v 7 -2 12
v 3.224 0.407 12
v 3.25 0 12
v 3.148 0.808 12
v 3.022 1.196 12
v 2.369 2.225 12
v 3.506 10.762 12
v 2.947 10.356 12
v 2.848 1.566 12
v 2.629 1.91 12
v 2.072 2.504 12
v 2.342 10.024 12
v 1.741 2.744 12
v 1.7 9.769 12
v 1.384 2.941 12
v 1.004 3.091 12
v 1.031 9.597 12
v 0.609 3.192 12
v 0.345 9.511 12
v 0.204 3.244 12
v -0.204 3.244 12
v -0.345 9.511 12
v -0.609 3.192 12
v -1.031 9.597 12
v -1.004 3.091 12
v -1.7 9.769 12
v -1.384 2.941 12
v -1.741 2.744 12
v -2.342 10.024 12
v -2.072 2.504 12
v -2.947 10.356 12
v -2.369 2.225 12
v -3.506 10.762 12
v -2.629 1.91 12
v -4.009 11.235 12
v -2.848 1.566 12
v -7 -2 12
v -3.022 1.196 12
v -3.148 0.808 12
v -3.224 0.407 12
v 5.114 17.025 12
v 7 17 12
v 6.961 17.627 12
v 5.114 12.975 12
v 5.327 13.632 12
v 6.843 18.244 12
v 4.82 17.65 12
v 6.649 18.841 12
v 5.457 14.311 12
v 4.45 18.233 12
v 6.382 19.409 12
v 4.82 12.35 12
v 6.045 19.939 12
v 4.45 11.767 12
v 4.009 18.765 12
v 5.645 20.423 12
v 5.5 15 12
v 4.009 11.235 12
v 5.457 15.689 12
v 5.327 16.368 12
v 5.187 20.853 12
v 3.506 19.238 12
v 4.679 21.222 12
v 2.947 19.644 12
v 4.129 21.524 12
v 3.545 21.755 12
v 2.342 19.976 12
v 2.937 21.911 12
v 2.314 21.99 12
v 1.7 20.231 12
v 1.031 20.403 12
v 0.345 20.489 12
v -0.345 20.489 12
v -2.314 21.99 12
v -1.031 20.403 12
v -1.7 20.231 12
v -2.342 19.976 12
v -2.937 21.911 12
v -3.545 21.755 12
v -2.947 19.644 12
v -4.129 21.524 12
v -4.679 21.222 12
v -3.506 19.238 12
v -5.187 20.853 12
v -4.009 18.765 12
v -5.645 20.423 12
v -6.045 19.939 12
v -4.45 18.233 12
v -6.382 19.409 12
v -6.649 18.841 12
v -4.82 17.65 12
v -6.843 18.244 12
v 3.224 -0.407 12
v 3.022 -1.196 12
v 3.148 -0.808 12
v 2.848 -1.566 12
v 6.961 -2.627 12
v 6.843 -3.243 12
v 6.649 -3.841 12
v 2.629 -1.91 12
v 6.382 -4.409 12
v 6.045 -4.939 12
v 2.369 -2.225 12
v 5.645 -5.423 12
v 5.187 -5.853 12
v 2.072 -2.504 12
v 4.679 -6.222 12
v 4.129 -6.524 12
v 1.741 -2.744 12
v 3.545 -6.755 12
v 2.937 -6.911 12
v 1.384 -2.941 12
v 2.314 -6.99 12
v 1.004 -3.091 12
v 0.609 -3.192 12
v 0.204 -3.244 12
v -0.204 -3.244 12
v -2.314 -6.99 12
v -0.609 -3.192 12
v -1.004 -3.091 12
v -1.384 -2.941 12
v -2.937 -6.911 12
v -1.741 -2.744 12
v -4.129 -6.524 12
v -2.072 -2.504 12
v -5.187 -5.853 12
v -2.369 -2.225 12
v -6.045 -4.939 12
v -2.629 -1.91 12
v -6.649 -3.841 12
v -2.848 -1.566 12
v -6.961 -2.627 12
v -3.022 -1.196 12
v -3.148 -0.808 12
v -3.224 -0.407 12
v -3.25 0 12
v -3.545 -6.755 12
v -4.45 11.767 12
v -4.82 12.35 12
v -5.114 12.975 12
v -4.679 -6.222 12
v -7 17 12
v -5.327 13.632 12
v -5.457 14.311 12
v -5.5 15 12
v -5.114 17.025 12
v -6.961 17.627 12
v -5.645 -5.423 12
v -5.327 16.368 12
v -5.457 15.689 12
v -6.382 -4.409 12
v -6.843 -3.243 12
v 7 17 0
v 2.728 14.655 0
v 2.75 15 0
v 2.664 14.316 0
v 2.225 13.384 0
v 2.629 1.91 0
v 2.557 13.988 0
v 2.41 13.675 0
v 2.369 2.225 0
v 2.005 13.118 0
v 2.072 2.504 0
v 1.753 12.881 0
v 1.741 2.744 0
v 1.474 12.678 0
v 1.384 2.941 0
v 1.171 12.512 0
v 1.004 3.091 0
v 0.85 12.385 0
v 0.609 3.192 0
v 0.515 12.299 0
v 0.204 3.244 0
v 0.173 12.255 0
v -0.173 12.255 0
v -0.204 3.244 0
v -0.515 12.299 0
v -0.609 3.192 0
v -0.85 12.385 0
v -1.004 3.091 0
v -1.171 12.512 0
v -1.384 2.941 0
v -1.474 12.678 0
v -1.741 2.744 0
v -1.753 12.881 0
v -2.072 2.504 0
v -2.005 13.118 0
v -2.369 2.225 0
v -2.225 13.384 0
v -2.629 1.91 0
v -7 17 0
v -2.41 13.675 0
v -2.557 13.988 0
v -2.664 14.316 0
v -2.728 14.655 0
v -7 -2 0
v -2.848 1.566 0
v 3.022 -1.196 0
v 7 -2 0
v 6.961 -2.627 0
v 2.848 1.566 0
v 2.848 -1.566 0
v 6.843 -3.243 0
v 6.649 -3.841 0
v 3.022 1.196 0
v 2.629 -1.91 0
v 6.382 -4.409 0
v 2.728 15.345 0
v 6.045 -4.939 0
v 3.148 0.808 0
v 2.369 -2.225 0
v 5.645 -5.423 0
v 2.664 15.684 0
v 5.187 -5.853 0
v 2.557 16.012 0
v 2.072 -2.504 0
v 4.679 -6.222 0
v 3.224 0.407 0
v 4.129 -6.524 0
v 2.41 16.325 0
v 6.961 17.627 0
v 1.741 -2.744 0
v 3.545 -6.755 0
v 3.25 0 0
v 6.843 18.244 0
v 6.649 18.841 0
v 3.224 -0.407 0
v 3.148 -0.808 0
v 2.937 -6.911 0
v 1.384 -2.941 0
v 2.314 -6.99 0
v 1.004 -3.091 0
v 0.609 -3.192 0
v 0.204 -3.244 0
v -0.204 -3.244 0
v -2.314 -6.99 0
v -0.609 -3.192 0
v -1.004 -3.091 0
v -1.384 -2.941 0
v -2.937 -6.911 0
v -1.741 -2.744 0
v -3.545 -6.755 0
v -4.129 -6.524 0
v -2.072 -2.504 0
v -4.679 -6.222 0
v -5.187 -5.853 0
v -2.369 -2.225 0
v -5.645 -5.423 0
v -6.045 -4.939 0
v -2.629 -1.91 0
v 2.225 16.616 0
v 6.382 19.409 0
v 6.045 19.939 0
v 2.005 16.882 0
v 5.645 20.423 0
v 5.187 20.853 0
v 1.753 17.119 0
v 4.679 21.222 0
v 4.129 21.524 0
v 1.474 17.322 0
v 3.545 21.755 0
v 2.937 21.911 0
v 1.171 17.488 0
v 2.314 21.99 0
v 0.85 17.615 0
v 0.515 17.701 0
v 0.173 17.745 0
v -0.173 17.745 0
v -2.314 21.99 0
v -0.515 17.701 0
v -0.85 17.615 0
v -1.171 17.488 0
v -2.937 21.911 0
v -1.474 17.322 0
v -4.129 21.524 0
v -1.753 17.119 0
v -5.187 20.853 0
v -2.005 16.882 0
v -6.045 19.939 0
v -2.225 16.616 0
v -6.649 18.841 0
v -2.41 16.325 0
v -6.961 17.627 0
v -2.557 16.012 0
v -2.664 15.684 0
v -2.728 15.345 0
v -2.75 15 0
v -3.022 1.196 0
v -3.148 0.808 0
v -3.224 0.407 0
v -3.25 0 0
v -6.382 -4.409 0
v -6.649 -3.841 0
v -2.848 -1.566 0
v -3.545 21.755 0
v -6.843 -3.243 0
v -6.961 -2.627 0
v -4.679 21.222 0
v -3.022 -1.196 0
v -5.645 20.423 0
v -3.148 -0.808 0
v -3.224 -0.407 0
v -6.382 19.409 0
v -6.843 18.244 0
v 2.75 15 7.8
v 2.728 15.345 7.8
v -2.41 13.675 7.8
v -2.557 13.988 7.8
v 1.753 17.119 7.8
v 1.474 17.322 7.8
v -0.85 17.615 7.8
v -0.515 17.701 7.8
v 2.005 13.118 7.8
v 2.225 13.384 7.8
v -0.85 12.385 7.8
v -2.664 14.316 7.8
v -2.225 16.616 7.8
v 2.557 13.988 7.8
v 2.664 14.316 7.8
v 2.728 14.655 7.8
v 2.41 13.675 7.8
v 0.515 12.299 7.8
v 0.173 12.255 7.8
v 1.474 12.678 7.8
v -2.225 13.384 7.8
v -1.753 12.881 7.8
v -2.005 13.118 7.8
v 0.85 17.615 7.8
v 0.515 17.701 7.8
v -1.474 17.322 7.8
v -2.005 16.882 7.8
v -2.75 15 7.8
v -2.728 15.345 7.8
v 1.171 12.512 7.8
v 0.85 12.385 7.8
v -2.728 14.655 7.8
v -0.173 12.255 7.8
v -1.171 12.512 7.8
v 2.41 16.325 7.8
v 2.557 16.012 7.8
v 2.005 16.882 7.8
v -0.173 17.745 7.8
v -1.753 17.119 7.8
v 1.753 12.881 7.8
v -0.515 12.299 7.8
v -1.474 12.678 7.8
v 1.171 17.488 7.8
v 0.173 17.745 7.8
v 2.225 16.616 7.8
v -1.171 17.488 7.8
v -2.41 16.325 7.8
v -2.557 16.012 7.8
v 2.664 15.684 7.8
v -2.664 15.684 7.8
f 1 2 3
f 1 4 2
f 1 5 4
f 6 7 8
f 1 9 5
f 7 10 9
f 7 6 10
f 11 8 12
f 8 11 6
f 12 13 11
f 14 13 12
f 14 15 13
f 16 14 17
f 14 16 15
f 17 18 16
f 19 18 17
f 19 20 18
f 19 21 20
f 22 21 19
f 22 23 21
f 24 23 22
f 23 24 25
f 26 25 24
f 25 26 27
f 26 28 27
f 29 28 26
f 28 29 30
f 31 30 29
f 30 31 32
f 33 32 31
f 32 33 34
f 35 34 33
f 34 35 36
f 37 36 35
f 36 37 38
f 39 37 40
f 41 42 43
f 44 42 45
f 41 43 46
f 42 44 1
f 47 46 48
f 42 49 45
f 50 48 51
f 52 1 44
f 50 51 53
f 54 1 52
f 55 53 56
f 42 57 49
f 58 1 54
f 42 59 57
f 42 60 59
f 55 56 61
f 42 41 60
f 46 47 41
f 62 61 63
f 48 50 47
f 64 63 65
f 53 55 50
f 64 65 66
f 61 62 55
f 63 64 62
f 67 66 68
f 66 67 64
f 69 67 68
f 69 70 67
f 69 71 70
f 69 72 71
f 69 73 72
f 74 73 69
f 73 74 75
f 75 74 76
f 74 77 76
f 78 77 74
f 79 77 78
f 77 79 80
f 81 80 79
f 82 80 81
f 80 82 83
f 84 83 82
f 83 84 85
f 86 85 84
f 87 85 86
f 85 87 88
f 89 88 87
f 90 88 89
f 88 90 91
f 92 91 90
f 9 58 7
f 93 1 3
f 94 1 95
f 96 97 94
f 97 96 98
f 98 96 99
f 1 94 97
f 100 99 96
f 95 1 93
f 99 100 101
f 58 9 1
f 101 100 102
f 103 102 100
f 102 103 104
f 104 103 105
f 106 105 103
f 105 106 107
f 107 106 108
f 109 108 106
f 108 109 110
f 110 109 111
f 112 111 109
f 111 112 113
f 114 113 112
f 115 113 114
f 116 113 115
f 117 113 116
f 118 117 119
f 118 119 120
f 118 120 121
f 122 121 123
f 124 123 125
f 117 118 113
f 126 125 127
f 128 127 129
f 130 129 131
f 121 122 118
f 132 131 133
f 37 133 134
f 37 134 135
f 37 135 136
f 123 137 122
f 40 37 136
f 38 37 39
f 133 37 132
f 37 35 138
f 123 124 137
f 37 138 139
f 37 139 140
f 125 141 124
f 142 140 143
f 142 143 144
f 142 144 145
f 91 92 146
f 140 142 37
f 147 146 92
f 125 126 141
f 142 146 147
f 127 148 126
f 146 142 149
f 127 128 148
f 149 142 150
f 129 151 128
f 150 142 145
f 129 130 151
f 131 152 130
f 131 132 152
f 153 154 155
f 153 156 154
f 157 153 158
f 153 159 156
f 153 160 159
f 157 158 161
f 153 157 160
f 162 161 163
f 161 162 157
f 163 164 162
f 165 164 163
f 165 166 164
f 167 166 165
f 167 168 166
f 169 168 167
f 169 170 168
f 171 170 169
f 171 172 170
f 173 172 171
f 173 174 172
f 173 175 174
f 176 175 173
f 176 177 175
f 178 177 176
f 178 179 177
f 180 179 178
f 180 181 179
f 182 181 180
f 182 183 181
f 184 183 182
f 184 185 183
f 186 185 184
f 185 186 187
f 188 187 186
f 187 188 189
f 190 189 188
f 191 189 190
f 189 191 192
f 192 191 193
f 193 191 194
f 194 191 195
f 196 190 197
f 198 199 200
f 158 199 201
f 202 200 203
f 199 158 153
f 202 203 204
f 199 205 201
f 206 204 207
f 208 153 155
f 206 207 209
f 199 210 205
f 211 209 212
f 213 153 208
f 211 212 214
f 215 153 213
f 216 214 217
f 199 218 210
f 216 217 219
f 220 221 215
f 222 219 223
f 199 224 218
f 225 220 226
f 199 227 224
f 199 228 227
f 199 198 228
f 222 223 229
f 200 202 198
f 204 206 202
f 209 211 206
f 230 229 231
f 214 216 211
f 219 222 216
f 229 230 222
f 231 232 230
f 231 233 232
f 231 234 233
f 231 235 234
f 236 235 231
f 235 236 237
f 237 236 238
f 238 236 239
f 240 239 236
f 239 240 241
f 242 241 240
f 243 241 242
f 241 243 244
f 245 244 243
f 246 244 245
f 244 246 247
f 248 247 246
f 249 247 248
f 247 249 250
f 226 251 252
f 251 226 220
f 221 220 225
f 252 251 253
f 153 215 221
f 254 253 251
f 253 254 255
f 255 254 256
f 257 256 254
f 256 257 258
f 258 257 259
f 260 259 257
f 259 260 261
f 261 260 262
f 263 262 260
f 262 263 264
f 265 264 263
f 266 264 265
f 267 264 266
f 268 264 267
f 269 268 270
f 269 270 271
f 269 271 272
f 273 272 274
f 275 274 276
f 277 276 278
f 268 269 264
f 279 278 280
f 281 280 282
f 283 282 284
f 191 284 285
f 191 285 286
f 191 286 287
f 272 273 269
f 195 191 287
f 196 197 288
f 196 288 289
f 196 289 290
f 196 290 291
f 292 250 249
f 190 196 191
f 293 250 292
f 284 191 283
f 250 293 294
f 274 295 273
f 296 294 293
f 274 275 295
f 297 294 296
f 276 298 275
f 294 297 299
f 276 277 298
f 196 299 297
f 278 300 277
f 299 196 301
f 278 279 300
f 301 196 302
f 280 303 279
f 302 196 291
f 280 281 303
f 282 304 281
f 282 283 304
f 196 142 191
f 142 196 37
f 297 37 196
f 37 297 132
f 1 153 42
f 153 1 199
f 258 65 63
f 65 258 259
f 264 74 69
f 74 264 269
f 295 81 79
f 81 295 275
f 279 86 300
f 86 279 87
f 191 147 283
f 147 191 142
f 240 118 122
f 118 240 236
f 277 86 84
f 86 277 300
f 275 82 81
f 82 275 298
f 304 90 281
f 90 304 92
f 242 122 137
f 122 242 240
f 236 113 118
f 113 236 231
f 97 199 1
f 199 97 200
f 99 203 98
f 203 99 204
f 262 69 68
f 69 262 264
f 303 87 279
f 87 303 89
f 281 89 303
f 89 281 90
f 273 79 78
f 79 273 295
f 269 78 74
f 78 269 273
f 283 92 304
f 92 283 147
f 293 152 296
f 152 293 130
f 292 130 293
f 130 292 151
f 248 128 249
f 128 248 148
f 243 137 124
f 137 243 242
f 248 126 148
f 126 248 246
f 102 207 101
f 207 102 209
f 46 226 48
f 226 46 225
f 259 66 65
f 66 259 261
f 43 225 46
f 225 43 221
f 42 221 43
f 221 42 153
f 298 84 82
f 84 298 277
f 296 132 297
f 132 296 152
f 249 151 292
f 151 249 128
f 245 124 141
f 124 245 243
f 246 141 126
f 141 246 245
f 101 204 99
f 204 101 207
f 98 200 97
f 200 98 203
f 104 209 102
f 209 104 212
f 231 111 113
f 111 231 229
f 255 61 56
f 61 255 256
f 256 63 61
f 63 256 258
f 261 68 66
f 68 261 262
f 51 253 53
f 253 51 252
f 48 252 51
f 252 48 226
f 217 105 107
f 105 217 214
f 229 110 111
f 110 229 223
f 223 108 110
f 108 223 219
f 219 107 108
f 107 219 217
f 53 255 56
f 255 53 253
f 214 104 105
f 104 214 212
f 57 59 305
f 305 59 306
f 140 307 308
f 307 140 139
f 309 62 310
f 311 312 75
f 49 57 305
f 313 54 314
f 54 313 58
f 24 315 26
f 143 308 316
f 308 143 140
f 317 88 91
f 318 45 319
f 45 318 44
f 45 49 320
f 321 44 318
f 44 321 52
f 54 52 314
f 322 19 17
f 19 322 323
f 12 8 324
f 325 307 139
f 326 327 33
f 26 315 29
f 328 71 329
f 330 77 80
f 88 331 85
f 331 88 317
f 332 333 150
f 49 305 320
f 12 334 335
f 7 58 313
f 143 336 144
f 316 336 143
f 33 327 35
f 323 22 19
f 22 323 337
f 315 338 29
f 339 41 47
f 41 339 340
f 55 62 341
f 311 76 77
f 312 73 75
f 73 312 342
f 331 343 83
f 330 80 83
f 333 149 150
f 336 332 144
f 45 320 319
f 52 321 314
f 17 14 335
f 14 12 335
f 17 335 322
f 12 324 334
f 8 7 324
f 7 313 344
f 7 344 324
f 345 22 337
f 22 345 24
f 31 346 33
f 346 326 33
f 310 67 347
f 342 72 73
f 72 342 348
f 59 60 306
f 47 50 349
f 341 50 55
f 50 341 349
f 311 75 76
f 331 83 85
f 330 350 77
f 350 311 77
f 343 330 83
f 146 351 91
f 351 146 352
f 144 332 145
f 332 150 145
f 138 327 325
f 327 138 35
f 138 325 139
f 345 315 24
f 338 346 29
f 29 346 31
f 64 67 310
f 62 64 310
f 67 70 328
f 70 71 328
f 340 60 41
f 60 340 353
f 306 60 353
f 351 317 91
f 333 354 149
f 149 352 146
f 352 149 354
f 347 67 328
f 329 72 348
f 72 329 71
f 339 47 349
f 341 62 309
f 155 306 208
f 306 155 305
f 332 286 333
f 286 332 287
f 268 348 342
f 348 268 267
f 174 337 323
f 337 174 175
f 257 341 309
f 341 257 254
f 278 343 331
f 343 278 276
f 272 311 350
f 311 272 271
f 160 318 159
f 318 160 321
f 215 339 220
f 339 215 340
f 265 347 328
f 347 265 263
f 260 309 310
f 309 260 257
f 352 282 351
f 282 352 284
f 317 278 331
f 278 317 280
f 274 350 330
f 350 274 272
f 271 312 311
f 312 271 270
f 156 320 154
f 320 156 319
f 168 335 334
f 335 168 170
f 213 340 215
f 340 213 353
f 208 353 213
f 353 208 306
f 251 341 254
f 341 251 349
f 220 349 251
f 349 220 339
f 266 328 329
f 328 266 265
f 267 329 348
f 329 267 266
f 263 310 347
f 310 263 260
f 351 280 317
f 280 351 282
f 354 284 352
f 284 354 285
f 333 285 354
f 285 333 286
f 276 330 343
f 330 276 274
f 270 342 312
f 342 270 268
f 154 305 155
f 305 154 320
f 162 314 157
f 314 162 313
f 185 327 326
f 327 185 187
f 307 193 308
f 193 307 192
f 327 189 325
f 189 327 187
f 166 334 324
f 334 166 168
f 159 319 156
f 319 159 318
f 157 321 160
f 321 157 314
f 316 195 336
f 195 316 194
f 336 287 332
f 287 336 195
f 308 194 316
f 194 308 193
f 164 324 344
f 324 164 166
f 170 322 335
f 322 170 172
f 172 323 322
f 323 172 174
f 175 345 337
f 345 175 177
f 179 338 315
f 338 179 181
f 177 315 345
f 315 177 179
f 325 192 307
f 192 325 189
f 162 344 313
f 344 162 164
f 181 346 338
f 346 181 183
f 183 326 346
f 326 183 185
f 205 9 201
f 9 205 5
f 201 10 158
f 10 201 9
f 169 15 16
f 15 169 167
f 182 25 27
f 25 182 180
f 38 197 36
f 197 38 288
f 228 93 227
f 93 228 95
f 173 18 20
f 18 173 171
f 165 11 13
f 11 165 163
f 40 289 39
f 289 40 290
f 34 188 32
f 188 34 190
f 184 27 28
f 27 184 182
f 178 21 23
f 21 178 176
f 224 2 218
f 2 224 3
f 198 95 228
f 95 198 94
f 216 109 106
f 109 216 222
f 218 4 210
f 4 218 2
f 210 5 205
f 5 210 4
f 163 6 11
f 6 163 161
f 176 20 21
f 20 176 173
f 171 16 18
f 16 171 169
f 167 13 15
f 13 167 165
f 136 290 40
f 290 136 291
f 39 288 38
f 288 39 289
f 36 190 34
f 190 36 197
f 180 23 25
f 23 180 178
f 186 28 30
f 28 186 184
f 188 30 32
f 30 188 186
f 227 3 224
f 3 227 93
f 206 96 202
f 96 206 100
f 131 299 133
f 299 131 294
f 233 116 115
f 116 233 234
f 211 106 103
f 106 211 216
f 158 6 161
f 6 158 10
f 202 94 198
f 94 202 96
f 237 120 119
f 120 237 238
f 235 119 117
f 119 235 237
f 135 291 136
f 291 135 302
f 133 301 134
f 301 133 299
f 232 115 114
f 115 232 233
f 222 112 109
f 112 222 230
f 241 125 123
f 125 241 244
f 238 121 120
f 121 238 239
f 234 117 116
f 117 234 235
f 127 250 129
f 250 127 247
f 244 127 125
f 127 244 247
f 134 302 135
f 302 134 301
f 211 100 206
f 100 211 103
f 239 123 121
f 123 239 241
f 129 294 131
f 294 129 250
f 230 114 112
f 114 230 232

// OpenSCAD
$fn = 50;


difference() {
	union() {
		cylinder(h = 12, r = 7.0000000000);
		translate(v = [0.0000000000, 7.5000000000, 0]) {
			hull() {
				translate(v = [-2.0000000000, 9.5000000000, 0]) {
					cylinder(h = 12, r = 5);
				}
				translate(v = [2.0000000000, 9.5000000000, 0]) {
					cylinder(h = 12, r = 5);
				}
				translate(v = [-2.0000000000, -9.5000000000, 0]) {
					cylinder(h = 12, r = 5);
				}
				translate(v = [2.0000000000, -9.5000000000, 0]) {
					cylinder(h = 12, r = 5);
				}
			}
		}
		translate(v = [0.0000000000, 7.5000000000, 0]) {
			hull() {
				translate(v = [-2.0000000000, 9.5000000000, 0]) {
					cylinder(h = 12, r = 5);
				}
				translate(v = [2.0000000000, 9.5000000000, 0]) {
					cylinder(h = 12, r = 5);
				}
				translate(v = [-2.0000000000, -9.5000000000, 0]) {
					cylinder(h = 12, r = 5);
				}
				translate(v = [2.0000000000, -9.5000000000, 0]) {
					cylinder(h = 12, r = 5);
				}
			}
		}
	}
	union() {
		translate(v = [0.0000000000, 15.0000000000, 12]) {
			rotate(a = [0, 0, 0]) {
				difference() {
					union() {
						#translate(v = [0, 0, -12.0000000000]) {
							cylinder(h = 12, r = 2.2500000000);
						}
						#translate(v = [0, 0, -4.2000000000]) {
							cylinder(h = 4.2000000000, r1 = 2.7500000000, r2 = 5.5000000000);
						}
						#translate(v = [0, 0, -12.0000000000]) {
							cylinder(h = 12, r = 2.7500000000);
						}
						#translate(v = [0, 0, -12.0000000000]) {
							cylinder(h = 12, r = 2.2500000000);
						}
					}
					union();
				}
			}
		}
		translate(v = [0.0000000000, 15.0000000000, 12]) {
			rotate(a = [0, 0, 0]) {
				difference() {
					union() {
						#translate(v = [0, 0, -12.0000000000]) {
							cylinder(h = 12, r = 2.2500000000);
						}
						#translate(v = [0, 0, -4.2000000000]) {
							cylinder(h = 4.2000000000, r1 = 2.7500000000, r2 = 5.5000000000);
						}
						#translate(v = [0, 0, -12.0000000000]) {
							cylinder(h = 12, r = 2.7500000000);
						}
						#translate(v = [0, 0, -12.0000000000]) {
							cylinder(h = 12, r = 2.2500000000);
						}
					}
					union();
				}
			}
		}
		translate(v = [0, 0, -100]) {
			cylinder(h = 200, r = 3.2500000000);
		}
		translate(v = [0, 0, -100]) {
			cylinder(h = 200, r = 1.8000000000);
		}
	}
}
